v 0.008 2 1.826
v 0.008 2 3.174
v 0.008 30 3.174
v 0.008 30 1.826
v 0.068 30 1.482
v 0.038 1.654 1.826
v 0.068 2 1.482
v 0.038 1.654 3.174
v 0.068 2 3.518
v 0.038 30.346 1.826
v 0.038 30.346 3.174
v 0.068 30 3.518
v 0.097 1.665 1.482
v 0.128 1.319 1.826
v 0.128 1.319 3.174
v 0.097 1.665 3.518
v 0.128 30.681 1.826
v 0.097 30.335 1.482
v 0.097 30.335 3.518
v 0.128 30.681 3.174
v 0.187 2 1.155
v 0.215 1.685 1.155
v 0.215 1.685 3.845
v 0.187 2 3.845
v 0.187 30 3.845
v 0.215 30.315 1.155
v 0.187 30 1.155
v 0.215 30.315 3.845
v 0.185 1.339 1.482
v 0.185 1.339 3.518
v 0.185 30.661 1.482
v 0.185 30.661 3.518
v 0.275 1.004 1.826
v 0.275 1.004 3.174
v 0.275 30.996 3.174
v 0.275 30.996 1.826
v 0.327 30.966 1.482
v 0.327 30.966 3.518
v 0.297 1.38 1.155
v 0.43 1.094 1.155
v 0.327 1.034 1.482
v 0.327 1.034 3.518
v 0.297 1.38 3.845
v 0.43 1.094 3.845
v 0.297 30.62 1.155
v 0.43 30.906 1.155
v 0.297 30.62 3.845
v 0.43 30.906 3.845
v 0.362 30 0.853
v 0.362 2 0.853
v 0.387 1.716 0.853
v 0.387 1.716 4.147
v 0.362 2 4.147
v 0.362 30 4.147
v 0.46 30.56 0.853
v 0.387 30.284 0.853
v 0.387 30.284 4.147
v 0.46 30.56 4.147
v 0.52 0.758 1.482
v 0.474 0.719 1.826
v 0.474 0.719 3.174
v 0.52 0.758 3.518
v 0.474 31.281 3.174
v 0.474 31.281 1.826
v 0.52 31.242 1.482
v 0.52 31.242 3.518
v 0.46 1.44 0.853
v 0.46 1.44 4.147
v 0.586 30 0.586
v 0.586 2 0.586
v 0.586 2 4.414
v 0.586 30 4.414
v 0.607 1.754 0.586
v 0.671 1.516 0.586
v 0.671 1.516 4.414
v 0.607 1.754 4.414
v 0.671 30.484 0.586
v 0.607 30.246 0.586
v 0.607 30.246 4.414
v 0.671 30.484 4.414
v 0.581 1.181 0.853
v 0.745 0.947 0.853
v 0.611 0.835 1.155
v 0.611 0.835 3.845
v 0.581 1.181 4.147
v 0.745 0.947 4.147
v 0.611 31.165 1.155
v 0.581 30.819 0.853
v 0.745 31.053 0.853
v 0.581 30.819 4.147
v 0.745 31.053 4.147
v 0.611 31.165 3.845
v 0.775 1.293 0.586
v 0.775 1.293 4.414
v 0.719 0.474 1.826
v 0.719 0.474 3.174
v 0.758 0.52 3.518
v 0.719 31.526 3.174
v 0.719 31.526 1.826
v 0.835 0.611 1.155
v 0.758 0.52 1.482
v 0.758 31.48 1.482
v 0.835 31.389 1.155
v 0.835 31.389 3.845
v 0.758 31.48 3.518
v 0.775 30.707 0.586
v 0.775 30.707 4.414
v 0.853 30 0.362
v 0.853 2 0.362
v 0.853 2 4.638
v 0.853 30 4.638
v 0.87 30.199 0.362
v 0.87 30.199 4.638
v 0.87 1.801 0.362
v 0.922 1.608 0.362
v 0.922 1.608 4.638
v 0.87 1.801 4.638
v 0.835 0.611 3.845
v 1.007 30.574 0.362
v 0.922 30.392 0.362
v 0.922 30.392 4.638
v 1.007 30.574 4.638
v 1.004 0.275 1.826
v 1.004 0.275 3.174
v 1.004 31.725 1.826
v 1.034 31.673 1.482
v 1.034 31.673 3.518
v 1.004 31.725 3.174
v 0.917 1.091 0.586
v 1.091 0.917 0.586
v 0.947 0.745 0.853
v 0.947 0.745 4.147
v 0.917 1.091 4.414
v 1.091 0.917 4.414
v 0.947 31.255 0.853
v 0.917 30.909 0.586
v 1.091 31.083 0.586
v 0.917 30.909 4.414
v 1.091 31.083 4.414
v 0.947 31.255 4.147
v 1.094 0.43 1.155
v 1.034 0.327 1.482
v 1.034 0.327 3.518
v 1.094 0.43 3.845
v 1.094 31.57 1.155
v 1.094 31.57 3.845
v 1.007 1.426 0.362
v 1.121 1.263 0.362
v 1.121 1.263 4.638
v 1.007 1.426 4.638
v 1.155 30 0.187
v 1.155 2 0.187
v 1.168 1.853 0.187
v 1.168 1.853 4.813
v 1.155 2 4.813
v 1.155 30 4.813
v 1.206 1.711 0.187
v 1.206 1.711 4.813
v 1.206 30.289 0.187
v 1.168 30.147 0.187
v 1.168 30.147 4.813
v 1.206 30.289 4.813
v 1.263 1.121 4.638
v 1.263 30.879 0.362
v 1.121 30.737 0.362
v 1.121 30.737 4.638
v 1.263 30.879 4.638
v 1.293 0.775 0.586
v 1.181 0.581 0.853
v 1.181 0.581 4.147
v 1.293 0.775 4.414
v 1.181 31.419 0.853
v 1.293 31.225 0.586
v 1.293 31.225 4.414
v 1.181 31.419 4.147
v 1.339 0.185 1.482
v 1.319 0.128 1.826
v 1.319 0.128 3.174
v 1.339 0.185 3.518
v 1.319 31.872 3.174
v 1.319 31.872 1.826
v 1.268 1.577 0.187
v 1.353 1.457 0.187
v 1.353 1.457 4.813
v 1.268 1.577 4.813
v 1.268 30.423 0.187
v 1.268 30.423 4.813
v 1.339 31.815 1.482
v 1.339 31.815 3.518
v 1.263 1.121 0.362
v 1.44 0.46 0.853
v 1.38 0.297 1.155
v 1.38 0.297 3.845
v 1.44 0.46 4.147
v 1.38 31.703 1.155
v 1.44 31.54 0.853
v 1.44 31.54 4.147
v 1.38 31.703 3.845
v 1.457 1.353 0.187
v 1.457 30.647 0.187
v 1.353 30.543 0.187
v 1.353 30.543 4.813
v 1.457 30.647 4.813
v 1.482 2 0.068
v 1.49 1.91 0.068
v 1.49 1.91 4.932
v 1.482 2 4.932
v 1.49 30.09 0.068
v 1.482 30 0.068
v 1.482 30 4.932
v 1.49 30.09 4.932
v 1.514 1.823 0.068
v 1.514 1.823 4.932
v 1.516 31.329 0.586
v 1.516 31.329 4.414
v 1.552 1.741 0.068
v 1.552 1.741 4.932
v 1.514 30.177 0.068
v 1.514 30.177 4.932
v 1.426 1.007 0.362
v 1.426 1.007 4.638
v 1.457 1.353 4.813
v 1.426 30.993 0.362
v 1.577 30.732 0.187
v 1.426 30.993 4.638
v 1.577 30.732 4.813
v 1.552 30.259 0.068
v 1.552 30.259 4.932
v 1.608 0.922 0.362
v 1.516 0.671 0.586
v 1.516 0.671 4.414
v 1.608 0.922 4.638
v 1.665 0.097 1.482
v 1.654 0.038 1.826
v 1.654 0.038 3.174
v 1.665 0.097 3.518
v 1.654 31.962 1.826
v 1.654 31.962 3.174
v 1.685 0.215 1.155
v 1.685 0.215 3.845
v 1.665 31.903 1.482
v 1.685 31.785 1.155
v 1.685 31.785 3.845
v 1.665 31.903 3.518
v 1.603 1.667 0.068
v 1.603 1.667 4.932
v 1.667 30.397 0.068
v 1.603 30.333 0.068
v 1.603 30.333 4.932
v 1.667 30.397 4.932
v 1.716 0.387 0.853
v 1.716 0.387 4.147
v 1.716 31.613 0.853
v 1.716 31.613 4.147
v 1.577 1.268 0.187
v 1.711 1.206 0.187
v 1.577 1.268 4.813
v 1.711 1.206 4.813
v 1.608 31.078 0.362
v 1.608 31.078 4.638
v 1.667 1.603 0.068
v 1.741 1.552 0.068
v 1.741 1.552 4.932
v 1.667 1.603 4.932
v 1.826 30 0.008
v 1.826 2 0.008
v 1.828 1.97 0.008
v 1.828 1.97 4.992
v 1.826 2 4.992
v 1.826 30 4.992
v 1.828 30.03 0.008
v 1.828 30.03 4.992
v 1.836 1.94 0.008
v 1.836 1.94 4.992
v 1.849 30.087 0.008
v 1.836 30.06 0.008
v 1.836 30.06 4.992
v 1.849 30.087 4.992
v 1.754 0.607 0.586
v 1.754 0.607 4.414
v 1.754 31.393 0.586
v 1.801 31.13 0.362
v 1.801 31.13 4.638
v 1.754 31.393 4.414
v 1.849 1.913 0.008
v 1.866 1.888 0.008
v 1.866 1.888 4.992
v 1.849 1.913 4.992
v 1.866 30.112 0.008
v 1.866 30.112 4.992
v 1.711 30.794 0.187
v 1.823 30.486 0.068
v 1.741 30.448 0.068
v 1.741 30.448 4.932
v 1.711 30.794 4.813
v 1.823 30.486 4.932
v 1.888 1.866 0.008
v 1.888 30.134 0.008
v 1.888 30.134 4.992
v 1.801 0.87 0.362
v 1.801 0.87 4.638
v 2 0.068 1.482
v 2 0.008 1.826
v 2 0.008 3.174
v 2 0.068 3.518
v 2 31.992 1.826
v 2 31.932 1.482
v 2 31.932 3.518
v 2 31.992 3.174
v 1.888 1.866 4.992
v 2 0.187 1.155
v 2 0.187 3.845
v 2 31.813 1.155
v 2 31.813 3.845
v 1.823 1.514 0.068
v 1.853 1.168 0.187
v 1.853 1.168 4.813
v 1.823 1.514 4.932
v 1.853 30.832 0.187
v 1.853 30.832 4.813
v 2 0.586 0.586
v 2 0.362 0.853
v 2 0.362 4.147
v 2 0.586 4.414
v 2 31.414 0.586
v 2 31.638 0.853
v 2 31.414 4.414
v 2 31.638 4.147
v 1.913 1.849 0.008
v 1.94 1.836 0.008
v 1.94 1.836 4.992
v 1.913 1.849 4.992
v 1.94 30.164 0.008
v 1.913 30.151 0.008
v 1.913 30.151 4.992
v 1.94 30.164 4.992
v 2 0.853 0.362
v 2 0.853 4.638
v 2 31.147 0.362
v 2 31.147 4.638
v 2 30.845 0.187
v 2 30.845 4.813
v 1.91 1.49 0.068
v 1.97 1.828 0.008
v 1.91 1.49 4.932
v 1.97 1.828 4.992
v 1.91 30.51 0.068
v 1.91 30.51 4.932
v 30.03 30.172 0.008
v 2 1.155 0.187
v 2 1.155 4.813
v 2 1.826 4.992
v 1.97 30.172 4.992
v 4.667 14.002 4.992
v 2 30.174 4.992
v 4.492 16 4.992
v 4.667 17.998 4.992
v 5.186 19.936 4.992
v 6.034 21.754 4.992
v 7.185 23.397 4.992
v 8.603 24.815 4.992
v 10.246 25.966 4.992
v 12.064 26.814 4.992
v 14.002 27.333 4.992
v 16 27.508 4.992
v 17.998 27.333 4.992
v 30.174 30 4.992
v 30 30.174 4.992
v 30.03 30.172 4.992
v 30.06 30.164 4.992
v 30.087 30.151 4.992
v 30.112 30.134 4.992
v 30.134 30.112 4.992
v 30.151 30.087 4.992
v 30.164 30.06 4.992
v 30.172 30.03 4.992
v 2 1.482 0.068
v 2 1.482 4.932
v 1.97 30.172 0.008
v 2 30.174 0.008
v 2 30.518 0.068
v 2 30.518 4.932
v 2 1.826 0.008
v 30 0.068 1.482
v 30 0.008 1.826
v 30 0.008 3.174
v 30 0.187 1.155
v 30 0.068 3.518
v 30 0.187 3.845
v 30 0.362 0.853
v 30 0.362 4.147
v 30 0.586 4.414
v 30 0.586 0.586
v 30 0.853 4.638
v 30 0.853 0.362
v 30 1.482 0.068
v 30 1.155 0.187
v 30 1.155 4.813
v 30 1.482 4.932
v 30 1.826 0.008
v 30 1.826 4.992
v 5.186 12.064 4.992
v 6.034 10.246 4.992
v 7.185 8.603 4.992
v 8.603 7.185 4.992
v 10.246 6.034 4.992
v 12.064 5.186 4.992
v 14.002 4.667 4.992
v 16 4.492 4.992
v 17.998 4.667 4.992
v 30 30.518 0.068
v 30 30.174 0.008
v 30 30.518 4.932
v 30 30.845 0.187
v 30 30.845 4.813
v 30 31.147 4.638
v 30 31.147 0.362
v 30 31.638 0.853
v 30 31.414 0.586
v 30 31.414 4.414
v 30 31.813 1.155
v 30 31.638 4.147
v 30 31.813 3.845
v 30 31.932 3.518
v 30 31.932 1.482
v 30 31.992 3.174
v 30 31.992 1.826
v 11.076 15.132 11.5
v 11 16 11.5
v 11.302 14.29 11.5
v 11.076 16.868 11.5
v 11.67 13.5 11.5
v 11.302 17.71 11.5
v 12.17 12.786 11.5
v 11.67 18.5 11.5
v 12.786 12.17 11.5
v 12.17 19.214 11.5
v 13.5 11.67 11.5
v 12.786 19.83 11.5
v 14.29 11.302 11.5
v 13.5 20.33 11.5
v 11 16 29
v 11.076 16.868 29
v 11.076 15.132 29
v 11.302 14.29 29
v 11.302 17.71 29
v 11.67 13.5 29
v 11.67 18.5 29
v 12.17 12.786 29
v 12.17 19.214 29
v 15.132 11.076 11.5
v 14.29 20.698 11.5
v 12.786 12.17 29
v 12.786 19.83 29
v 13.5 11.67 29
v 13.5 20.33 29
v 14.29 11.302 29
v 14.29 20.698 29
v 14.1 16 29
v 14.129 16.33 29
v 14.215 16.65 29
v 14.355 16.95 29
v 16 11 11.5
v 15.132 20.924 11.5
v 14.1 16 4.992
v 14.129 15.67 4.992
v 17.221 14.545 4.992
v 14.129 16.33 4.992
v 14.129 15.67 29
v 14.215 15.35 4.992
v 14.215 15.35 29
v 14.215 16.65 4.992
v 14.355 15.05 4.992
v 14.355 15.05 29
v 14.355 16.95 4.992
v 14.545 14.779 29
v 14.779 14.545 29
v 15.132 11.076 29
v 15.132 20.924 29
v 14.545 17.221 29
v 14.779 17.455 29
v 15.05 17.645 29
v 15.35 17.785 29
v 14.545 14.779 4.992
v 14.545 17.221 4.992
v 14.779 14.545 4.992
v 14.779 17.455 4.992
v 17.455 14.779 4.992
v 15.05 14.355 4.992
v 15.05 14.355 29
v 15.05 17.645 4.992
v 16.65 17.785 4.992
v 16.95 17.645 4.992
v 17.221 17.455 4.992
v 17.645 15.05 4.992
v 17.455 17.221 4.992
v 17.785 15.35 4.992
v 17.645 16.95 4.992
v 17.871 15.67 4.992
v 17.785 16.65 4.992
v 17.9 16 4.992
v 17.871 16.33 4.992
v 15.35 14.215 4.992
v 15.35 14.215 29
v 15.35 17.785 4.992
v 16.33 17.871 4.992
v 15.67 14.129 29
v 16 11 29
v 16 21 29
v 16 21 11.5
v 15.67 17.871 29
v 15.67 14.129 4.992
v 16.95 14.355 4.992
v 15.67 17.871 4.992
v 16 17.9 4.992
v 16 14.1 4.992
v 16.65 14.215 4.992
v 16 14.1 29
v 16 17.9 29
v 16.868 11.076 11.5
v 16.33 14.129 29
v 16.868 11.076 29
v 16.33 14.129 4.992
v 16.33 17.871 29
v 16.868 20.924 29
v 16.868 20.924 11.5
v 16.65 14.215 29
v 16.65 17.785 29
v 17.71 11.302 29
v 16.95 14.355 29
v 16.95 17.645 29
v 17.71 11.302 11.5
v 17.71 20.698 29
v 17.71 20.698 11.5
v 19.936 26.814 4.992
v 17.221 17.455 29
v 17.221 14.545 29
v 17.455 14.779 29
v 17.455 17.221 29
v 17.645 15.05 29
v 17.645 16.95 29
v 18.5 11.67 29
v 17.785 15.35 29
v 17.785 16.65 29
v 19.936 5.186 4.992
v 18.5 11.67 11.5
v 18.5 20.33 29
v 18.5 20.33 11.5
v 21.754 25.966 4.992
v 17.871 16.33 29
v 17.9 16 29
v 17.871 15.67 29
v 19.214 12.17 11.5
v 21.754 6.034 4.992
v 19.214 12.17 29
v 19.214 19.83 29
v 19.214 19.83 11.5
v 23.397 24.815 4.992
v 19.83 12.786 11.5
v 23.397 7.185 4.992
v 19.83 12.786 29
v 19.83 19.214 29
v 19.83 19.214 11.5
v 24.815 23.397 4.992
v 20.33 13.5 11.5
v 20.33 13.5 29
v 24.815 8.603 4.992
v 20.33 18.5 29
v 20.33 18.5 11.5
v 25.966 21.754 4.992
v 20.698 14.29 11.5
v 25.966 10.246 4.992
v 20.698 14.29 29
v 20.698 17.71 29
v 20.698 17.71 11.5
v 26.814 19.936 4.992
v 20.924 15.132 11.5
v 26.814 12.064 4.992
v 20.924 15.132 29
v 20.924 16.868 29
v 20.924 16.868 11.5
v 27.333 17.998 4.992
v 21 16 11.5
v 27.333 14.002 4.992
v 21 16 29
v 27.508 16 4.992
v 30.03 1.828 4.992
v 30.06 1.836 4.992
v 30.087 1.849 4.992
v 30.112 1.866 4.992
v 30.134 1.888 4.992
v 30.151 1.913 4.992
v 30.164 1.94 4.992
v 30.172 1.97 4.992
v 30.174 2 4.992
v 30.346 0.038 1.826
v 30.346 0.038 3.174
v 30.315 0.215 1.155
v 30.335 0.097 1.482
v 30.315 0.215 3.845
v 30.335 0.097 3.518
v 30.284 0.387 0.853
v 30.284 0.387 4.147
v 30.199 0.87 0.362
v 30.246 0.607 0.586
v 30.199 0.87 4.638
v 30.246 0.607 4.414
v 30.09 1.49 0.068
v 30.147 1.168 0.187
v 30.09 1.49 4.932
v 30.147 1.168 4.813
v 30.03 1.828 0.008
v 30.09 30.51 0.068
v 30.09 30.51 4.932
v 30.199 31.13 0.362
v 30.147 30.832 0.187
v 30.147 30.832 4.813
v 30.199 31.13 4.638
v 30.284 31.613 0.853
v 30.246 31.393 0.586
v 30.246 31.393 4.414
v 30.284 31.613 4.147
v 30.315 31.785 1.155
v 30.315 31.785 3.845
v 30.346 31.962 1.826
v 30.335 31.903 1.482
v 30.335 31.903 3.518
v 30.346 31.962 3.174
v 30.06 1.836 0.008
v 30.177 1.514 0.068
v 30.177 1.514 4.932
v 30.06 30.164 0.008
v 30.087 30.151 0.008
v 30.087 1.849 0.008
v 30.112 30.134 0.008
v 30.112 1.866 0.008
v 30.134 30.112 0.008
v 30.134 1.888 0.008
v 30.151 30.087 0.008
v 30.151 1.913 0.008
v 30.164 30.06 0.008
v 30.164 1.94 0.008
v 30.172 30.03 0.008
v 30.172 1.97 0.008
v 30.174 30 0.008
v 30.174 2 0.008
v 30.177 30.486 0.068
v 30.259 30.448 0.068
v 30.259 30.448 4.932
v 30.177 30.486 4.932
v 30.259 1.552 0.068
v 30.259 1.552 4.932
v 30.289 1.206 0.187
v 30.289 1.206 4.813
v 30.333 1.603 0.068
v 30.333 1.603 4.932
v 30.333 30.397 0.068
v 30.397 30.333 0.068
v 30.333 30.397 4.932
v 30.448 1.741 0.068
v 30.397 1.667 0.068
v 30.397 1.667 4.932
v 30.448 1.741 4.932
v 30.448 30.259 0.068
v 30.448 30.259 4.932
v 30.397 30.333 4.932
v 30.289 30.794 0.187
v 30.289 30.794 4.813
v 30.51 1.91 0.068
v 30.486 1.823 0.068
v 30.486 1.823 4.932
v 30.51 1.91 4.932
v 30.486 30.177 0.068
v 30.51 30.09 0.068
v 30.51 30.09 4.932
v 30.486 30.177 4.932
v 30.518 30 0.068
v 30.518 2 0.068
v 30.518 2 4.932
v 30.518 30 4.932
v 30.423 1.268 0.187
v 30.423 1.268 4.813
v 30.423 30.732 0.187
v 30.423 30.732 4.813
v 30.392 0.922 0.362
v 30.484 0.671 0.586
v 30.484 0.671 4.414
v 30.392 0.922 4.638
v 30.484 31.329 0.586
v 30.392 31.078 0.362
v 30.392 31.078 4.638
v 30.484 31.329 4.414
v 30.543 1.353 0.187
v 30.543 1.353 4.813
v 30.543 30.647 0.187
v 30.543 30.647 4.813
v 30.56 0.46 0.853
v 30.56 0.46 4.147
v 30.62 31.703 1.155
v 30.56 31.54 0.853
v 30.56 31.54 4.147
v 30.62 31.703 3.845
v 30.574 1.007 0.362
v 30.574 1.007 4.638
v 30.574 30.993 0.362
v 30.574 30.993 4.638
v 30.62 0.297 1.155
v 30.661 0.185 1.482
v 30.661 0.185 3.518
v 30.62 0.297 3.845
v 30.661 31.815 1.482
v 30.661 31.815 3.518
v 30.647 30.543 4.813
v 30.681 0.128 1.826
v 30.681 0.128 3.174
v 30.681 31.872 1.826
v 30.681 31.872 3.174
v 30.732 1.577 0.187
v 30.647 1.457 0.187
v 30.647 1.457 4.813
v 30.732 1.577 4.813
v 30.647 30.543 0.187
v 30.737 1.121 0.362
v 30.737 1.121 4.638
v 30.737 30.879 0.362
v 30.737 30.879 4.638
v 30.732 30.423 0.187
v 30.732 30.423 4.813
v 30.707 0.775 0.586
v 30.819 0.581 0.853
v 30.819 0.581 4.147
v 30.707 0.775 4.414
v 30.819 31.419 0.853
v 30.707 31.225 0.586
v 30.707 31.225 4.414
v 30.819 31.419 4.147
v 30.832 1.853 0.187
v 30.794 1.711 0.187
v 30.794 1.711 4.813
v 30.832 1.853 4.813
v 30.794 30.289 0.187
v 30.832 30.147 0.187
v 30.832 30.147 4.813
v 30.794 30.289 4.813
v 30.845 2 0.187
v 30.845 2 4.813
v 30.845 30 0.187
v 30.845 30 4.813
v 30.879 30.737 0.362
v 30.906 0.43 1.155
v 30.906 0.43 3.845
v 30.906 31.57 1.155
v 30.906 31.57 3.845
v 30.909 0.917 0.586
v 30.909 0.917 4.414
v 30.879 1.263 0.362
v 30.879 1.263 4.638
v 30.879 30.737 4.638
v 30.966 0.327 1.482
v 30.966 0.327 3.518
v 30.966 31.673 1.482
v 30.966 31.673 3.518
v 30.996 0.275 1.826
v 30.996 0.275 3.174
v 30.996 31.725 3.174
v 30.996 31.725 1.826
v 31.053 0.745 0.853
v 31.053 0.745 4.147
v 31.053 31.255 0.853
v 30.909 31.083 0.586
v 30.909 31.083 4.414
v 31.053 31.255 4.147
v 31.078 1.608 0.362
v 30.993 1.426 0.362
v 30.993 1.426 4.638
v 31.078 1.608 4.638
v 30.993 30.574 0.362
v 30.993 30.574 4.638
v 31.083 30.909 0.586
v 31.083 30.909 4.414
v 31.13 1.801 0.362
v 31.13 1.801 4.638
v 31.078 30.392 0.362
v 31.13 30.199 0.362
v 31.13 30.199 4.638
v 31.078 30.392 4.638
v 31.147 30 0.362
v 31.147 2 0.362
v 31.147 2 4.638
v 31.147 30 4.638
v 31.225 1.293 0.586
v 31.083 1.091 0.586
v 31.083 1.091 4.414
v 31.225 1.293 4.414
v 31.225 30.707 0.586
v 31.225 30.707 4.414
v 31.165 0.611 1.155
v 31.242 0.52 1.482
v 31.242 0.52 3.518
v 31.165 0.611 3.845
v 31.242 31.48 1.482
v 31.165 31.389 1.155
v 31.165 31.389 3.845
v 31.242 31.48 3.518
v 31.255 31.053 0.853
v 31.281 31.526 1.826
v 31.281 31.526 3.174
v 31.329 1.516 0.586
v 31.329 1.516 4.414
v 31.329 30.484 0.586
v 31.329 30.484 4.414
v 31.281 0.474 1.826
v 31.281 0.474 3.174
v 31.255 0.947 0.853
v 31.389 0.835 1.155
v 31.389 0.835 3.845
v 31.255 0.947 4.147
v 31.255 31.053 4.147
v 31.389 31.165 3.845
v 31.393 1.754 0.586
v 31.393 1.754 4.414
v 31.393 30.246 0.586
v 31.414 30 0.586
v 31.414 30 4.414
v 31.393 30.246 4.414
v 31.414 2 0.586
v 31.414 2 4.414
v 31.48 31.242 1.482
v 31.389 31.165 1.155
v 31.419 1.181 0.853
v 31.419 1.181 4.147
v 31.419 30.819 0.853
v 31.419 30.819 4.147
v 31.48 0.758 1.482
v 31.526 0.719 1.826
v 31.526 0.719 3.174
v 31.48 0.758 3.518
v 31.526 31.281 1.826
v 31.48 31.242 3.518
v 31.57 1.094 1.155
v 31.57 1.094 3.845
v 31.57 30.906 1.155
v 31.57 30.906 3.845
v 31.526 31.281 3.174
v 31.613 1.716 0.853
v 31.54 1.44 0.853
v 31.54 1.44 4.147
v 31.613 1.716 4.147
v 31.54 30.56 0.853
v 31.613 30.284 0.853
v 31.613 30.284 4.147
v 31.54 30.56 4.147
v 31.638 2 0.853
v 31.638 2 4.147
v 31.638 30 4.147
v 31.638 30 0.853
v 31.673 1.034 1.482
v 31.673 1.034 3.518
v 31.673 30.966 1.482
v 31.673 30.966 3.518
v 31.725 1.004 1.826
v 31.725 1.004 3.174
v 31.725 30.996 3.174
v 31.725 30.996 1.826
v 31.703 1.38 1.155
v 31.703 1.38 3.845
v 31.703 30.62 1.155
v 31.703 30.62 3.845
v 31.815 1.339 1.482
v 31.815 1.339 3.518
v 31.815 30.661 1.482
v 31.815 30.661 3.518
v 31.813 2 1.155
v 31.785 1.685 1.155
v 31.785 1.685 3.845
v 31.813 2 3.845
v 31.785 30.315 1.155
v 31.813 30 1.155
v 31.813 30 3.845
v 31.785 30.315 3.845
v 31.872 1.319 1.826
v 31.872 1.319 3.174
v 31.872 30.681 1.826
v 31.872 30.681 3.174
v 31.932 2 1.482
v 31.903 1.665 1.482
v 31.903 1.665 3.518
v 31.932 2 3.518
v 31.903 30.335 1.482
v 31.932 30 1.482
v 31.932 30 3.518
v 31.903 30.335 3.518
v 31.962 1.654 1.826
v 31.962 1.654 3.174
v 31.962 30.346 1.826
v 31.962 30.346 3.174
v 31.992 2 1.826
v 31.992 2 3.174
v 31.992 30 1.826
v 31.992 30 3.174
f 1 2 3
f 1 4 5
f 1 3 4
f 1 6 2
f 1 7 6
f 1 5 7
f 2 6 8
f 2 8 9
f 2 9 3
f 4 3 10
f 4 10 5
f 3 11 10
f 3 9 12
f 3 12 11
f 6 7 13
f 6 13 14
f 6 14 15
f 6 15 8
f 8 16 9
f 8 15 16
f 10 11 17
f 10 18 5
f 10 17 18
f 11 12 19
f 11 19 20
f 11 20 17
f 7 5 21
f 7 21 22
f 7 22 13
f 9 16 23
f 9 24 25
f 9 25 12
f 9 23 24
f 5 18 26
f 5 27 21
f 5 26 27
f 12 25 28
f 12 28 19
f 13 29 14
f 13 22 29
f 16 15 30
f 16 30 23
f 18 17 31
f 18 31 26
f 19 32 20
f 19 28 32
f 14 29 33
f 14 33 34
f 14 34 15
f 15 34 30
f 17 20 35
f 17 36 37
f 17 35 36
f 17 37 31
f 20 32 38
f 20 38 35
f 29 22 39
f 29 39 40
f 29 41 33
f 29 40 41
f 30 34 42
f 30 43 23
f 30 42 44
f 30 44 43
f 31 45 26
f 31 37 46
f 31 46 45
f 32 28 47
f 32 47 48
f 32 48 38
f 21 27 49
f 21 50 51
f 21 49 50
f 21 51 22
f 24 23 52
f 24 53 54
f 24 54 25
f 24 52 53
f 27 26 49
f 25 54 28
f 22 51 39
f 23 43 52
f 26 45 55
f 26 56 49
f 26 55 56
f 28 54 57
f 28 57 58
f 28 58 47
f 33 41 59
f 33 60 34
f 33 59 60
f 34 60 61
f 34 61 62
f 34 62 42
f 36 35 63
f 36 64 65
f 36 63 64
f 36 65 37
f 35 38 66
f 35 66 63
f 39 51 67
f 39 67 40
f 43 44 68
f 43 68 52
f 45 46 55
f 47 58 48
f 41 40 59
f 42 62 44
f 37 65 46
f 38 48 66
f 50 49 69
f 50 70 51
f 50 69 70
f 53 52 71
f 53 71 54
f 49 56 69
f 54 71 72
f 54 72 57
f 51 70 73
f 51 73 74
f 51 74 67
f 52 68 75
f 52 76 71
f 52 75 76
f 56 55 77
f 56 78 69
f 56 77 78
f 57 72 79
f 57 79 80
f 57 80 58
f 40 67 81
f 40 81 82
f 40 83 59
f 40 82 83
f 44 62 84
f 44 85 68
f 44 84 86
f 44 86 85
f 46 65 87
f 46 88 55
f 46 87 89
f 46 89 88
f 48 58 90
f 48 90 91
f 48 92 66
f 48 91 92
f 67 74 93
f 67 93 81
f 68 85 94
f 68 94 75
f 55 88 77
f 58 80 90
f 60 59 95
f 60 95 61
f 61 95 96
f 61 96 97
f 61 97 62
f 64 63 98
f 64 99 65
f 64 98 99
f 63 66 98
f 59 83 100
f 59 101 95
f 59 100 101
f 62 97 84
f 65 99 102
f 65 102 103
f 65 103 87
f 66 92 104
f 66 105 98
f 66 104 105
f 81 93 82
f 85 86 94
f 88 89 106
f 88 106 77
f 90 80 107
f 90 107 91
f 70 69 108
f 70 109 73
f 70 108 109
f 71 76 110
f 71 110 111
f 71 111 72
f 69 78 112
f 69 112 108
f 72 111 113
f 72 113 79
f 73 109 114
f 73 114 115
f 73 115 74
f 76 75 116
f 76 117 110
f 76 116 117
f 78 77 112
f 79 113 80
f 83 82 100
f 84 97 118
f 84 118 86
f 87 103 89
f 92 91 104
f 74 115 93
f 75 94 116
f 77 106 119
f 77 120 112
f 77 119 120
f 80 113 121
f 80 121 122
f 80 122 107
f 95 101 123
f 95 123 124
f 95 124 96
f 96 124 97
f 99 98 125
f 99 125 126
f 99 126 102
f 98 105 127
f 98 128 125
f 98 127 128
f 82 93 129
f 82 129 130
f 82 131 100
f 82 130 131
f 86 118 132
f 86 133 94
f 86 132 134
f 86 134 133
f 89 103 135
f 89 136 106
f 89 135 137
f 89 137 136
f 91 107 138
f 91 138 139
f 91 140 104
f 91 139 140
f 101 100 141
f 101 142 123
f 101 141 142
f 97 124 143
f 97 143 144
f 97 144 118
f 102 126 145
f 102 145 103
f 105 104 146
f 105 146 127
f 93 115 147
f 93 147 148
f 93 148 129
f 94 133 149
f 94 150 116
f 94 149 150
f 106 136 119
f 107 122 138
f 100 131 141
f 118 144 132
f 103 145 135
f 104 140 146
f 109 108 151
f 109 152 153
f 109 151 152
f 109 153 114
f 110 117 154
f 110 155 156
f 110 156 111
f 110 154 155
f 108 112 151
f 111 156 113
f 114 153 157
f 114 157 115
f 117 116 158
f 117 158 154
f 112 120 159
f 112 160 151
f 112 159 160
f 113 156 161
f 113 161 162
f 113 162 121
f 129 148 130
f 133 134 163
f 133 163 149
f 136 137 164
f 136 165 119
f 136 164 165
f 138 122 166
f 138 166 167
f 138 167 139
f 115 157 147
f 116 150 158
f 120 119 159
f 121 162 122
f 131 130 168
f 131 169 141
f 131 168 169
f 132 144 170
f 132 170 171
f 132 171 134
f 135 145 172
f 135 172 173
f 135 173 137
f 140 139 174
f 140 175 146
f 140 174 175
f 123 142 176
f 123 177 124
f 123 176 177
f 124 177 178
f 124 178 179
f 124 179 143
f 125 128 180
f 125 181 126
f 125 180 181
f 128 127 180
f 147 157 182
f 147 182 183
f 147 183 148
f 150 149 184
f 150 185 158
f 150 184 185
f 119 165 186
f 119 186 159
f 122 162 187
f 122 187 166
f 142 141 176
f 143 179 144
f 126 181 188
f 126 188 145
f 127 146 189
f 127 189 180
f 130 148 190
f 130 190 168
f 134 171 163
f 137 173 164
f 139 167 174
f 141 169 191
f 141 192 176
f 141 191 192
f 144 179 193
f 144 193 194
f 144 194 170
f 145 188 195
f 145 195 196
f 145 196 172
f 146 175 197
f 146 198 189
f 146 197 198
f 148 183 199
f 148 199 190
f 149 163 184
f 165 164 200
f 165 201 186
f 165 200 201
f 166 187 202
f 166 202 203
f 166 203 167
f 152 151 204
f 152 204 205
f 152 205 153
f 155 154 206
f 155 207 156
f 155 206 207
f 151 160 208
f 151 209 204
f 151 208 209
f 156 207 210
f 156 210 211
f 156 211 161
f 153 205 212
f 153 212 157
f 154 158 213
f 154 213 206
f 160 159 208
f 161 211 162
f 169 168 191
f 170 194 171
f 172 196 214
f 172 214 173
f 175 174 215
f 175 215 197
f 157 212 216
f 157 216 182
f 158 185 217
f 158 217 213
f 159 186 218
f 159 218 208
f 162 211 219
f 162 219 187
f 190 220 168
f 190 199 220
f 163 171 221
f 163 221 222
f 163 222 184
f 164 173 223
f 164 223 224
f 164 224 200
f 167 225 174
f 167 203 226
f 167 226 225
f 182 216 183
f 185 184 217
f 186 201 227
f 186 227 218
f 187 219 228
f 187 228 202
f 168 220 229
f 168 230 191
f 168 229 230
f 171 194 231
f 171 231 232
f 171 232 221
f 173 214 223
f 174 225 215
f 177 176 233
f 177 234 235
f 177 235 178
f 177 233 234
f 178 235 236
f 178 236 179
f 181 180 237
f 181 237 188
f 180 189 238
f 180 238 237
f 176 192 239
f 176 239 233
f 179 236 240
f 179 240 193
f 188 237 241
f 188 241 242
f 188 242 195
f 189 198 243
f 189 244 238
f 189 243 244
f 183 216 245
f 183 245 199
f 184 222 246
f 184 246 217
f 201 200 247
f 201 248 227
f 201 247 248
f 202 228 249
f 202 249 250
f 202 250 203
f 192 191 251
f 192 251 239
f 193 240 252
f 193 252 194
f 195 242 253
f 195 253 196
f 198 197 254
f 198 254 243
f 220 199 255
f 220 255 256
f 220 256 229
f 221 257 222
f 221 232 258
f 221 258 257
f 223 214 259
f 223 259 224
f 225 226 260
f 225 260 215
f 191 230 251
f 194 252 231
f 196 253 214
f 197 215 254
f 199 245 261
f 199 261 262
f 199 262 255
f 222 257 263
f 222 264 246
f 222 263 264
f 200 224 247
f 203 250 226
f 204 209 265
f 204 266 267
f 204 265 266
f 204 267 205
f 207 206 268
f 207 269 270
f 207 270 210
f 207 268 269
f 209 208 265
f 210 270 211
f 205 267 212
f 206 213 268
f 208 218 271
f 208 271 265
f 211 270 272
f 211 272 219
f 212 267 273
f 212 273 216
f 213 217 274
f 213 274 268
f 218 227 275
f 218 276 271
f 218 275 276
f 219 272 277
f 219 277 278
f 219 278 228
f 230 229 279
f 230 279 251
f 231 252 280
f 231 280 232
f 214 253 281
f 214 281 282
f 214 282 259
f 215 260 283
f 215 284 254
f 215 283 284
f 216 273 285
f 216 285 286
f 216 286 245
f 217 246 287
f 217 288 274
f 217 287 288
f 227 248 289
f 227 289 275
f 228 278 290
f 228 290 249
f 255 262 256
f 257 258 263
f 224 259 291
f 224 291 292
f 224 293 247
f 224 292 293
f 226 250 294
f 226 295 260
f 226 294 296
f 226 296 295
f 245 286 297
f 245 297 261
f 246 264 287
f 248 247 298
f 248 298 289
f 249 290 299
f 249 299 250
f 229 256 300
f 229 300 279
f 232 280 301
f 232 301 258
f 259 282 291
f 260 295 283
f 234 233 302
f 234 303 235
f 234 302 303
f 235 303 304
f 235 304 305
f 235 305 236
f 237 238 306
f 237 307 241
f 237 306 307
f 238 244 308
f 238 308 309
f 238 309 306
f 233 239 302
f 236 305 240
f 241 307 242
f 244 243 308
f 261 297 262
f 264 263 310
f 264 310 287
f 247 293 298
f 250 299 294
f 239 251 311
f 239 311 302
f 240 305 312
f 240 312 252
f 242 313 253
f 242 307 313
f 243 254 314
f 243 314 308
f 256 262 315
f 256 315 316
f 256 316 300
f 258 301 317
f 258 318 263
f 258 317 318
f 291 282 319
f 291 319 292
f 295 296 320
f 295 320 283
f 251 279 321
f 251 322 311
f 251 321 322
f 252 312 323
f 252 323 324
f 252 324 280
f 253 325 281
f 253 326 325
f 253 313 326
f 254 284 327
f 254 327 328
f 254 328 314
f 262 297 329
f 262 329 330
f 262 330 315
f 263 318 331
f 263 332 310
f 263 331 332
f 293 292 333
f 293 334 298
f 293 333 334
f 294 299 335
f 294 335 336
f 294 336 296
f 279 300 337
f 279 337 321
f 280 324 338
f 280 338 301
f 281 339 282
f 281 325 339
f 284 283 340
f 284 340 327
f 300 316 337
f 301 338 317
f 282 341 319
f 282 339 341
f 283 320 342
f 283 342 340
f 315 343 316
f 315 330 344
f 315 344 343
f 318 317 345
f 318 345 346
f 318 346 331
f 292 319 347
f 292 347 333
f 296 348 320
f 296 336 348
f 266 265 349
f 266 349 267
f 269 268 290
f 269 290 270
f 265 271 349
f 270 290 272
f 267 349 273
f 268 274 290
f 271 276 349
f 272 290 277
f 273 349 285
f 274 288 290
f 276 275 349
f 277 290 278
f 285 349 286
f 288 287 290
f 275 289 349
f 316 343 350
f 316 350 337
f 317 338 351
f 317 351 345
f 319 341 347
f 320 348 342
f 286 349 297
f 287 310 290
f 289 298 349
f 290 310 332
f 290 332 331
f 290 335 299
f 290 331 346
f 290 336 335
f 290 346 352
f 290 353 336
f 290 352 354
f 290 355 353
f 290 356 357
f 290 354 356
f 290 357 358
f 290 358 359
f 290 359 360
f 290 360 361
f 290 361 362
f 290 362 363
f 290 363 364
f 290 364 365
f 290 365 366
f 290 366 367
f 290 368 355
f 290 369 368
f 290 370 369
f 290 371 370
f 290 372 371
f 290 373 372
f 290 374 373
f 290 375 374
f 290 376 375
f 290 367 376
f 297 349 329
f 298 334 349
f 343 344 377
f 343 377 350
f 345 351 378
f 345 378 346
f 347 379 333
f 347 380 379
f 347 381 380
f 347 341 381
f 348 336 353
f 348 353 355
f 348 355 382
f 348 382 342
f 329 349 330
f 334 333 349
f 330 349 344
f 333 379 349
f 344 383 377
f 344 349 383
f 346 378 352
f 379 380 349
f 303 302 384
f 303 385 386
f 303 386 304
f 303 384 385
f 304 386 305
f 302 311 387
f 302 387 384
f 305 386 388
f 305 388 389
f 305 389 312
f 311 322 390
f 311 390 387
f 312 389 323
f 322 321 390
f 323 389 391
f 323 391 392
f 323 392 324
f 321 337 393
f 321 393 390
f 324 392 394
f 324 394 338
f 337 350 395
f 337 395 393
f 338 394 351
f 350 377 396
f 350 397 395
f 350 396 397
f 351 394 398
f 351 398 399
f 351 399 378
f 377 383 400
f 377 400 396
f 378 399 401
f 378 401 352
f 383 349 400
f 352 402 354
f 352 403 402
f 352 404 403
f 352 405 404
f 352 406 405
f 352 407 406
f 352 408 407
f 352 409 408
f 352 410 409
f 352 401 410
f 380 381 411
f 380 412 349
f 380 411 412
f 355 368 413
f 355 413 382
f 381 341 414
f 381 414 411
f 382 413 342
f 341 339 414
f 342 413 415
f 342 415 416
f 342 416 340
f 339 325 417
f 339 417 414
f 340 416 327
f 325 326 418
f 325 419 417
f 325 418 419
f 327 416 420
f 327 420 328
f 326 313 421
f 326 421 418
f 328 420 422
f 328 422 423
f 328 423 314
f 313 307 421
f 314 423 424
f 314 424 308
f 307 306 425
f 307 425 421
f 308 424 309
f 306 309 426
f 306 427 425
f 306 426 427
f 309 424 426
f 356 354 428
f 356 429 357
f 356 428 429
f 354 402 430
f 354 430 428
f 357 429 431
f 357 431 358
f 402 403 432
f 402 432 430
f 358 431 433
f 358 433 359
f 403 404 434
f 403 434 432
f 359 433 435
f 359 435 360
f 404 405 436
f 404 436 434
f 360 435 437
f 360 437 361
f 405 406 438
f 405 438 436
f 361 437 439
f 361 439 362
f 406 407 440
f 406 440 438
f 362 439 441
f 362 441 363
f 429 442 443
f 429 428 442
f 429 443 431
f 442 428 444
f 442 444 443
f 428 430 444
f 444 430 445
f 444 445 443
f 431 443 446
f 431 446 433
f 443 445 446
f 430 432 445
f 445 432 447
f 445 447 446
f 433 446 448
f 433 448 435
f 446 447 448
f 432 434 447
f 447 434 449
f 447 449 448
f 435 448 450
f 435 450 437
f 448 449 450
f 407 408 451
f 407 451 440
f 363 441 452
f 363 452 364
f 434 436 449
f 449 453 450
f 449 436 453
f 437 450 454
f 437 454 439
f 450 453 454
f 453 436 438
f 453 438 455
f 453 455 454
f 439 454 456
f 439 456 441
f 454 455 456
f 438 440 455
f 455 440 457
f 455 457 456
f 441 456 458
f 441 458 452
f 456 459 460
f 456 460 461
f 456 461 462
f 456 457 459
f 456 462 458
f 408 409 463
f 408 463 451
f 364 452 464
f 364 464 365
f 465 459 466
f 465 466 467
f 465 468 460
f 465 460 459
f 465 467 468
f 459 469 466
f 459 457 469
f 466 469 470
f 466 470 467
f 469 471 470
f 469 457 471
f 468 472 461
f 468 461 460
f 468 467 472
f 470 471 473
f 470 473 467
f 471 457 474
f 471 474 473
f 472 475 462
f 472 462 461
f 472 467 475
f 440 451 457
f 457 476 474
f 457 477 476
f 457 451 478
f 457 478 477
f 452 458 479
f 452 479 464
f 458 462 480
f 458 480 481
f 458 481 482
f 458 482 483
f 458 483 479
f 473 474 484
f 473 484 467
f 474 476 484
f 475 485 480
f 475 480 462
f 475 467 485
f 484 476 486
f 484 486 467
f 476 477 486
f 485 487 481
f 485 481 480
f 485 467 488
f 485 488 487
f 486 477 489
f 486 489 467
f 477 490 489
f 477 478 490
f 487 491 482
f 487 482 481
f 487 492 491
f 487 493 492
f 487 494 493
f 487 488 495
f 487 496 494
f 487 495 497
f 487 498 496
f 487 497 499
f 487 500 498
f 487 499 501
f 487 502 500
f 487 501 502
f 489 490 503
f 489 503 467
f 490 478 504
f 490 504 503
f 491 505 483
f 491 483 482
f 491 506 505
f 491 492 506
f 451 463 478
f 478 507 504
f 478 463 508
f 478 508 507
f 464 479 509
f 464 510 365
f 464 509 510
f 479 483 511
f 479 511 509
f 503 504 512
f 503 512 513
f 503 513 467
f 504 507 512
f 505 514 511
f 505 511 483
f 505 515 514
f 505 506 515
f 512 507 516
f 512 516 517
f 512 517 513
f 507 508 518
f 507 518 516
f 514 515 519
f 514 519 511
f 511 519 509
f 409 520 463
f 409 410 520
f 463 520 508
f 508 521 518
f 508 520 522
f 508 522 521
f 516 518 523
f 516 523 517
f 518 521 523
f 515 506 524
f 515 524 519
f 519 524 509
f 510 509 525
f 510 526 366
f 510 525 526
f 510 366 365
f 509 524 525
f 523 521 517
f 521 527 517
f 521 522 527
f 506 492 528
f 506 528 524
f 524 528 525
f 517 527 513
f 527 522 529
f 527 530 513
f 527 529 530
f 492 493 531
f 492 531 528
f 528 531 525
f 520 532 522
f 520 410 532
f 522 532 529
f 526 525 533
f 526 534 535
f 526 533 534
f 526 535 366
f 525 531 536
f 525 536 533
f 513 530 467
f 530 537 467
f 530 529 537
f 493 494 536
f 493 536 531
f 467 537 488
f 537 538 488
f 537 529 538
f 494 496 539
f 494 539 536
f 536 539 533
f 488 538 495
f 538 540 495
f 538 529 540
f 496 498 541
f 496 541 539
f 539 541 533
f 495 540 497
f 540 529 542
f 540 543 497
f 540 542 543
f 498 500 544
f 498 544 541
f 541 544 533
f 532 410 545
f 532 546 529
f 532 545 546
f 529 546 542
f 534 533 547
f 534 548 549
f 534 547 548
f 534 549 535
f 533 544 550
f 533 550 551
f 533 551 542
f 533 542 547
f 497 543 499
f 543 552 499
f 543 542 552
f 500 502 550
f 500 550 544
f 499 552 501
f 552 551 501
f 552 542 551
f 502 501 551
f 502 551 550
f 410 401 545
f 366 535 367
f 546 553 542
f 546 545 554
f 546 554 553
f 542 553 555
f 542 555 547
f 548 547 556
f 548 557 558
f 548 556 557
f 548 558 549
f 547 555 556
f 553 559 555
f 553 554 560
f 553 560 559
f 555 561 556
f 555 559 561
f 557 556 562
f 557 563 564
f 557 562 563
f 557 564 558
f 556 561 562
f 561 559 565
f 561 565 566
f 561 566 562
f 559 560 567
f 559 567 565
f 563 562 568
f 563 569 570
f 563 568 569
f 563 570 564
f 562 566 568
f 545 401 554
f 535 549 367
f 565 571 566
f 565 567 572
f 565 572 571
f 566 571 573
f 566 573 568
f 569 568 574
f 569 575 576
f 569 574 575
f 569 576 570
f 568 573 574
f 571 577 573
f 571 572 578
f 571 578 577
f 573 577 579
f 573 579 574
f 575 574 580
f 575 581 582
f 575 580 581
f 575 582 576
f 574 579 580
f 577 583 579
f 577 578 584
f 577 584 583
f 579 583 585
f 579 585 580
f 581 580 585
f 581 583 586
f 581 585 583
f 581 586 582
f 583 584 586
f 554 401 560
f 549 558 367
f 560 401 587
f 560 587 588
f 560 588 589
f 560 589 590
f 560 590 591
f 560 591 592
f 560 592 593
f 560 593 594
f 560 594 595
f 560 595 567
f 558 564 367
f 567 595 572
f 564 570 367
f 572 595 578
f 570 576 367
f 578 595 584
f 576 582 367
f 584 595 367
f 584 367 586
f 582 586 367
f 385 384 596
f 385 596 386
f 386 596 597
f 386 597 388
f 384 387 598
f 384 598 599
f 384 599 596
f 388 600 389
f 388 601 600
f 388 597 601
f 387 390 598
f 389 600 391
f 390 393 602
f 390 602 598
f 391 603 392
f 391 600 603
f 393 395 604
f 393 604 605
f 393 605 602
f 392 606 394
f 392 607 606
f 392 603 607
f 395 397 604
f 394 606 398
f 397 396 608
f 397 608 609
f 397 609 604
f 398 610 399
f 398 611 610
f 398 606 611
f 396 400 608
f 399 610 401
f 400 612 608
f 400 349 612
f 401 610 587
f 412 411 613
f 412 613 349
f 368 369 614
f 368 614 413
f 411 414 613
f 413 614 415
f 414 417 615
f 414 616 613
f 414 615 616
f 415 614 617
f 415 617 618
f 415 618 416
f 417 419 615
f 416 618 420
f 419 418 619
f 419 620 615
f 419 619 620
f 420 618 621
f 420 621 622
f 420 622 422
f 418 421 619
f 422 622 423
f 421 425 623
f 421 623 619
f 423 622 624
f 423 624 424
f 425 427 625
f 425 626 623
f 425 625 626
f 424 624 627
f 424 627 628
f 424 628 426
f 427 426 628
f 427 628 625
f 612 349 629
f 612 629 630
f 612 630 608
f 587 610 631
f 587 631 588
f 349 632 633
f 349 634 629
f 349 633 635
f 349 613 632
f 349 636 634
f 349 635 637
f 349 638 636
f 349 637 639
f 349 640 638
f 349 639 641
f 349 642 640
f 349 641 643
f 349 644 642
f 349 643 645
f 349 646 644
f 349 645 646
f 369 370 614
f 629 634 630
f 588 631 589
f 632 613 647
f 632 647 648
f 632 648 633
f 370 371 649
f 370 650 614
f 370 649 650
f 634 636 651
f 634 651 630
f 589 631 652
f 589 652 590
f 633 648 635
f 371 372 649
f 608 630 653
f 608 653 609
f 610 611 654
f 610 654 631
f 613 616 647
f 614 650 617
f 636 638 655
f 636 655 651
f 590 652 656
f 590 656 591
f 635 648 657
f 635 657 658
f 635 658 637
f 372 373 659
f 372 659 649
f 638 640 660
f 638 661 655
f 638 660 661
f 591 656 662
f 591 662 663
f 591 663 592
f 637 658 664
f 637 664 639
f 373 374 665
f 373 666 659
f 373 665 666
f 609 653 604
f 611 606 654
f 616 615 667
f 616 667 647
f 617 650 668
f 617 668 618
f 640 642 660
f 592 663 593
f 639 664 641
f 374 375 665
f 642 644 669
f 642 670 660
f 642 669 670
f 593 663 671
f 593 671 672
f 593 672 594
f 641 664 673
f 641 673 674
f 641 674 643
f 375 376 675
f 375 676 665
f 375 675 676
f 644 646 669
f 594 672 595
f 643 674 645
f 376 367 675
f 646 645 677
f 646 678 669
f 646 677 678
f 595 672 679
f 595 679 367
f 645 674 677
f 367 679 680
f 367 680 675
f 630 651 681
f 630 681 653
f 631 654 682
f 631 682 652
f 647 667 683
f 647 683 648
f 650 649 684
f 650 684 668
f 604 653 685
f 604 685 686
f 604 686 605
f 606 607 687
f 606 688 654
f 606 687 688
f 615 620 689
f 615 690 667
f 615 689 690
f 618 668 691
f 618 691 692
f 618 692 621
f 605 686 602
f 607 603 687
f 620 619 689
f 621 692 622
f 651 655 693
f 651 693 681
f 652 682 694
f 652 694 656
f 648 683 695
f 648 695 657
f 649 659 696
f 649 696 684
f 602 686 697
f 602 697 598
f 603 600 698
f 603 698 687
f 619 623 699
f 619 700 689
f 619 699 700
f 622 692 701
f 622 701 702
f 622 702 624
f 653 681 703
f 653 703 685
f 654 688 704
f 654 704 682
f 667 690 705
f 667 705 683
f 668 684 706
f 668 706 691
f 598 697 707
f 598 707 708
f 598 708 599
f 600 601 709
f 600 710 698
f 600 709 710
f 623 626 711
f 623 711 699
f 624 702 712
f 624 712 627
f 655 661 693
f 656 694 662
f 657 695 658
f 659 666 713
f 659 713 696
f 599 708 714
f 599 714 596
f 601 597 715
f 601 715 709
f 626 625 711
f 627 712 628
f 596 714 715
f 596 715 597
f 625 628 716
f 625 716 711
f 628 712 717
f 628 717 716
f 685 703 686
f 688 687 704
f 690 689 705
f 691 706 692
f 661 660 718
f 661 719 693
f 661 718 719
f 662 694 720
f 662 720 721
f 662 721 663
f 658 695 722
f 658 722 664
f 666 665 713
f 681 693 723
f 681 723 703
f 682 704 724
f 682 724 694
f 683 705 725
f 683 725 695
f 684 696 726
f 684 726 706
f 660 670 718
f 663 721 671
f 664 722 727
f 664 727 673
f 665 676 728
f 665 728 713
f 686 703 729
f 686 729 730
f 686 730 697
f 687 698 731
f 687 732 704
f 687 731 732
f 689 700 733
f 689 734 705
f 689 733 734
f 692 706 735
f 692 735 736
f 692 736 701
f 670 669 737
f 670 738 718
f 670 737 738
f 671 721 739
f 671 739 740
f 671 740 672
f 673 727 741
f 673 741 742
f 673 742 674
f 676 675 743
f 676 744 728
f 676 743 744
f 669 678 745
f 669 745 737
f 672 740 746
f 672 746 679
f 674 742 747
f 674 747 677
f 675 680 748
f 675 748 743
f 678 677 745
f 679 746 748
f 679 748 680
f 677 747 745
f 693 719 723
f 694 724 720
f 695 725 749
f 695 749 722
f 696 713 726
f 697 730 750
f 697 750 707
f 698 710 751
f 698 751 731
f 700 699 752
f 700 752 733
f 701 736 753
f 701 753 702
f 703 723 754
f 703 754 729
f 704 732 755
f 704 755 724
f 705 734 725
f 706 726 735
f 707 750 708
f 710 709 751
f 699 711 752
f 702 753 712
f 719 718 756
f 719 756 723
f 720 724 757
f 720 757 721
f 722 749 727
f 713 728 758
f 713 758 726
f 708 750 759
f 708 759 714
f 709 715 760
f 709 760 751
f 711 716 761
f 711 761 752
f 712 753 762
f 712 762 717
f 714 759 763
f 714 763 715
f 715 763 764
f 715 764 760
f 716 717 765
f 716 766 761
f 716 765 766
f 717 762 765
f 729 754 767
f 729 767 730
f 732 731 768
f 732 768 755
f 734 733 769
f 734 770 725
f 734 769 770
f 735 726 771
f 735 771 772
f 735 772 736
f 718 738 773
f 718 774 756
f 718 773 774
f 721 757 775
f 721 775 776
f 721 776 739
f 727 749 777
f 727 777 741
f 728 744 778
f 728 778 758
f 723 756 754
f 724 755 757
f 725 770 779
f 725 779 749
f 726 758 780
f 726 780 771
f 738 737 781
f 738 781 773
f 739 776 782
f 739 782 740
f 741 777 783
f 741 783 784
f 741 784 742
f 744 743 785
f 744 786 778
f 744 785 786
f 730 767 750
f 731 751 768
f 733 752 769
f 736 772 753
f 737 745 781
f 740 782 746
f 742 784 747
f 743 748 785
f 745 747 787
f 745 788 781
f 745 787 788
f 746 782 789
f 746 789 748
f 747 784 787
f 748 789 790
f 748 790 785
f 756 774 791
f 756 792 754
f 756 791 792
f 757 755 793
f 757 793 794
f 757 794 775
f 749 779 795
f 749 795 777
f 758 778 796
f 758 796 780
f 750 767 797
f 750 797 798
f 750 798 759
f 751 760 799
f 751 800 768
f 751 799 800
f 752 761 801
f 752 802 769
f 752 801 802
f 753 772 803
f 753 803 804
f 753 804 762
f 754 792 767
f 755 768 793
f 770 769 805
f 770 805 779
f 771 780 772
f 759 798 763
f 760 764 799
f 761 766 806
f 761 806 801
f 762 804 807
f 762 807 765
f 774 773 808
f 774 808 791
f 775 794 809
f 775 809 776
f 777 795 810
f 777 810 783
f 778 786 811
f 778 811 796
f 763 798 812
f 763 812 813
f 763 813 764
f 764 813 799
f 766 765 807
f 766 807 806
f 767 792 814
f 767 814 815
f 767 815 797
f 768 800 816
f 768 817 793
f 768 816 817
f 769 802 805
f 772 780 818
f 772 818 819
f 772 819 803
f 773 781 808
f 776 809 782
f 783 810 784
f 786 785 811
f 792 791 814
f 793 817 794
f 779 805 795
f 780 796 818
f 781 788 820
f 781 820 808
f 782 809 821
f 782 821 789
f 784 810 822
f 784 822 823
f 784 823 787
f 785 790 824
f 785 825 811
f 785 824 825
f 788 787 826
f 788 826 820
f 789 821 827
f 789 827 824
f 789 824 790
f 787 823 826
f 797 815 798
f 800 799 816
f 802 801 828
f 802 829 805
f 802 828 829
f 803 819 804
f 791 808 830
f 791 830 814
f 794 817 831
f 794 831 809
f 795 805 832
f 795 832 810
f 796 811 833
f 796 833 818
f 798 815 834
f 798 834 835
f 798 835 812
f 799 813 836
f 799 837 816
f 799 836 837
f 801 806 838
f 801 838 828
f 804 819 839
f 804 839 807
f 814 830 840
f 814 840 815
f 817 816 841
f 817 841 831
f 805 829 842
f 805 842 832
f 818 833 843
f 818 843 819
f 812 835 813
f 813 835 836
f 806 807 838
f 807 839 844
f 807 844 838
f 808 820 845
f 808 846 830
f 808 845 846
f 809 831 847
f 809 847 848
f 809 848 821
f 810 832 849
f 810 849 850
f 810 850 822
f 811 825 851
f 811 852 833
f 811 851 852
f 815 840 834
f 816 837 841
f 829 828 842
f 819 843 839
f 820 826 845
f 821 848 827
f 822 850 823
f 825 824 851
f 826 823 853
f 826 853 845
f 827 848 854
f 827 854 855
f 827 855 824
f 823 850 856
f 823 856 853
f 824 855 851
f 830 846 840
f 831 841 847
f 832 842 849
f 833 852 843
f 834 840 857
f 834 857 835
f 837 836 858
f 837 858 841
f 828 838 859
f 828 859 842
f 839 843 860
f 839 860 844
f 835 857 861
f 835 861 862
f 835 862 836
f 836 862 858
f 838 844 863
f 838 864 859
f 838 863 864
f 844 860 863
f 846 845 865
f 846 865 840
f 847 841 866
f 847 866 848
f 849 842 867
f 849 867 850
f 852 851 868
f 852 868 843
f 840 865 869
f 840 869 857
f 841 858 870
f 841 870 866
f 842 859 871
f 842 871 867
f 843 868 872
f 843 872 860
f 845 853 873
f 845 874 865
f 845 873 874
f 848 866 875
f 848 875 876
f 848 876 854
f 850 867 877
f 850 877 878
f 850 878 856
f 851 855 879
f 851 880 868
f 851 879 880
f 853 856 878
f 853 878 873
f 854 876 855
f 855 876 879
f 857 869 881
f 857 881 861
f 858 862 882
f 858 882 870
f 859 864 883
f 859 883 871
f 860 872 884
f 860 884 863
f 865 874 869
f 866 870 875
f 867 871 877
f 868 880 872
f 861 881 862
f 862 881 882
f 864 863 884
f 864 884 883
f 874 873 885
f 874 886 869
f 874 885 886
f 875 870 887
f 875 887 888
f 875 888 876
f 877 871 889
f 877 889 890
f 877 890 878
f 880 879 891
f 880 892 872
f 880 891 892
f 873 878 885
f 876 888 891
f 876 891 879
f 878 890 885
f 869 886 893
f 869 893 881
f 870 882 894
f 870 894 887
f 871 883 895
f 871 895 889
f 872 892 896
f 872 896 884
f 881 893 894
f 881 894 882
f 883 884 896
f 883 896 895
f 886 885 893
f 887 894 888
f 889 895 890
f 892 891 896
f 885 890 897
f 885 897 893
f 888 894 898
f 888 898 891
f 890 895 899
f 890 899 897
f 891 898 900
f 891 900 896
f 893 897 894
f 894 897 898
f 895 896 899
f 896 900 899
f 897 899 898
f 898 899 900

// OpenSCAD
$fn=36;

size   = 32;
thick  = 5;
corner = 2;

module rcube(size=[1, 1, 1], radius=0.8) {
    minkowski() {
        cube(size = [
            size[0]-2*radius,
            size[1]-2*radius,
            size[2]-2*radius]
        );
        sphere(r = radius);
    }
}

// Base do puxador, com cantos arredondados
translate([corner, corner, corner])
    rcube([size, size, thick], radius=corner);

// Haste do puxador
translate([size/2, size/2, thick/2])
    difference() {
        union() {
            cylinder(d=10, h=24+thick/2);
            cylinder(r1=14, r2=4, h=10);
        }
        translate([0, 0, 1]) cylinder(d=3.8, h=25+thick/2);
    }
